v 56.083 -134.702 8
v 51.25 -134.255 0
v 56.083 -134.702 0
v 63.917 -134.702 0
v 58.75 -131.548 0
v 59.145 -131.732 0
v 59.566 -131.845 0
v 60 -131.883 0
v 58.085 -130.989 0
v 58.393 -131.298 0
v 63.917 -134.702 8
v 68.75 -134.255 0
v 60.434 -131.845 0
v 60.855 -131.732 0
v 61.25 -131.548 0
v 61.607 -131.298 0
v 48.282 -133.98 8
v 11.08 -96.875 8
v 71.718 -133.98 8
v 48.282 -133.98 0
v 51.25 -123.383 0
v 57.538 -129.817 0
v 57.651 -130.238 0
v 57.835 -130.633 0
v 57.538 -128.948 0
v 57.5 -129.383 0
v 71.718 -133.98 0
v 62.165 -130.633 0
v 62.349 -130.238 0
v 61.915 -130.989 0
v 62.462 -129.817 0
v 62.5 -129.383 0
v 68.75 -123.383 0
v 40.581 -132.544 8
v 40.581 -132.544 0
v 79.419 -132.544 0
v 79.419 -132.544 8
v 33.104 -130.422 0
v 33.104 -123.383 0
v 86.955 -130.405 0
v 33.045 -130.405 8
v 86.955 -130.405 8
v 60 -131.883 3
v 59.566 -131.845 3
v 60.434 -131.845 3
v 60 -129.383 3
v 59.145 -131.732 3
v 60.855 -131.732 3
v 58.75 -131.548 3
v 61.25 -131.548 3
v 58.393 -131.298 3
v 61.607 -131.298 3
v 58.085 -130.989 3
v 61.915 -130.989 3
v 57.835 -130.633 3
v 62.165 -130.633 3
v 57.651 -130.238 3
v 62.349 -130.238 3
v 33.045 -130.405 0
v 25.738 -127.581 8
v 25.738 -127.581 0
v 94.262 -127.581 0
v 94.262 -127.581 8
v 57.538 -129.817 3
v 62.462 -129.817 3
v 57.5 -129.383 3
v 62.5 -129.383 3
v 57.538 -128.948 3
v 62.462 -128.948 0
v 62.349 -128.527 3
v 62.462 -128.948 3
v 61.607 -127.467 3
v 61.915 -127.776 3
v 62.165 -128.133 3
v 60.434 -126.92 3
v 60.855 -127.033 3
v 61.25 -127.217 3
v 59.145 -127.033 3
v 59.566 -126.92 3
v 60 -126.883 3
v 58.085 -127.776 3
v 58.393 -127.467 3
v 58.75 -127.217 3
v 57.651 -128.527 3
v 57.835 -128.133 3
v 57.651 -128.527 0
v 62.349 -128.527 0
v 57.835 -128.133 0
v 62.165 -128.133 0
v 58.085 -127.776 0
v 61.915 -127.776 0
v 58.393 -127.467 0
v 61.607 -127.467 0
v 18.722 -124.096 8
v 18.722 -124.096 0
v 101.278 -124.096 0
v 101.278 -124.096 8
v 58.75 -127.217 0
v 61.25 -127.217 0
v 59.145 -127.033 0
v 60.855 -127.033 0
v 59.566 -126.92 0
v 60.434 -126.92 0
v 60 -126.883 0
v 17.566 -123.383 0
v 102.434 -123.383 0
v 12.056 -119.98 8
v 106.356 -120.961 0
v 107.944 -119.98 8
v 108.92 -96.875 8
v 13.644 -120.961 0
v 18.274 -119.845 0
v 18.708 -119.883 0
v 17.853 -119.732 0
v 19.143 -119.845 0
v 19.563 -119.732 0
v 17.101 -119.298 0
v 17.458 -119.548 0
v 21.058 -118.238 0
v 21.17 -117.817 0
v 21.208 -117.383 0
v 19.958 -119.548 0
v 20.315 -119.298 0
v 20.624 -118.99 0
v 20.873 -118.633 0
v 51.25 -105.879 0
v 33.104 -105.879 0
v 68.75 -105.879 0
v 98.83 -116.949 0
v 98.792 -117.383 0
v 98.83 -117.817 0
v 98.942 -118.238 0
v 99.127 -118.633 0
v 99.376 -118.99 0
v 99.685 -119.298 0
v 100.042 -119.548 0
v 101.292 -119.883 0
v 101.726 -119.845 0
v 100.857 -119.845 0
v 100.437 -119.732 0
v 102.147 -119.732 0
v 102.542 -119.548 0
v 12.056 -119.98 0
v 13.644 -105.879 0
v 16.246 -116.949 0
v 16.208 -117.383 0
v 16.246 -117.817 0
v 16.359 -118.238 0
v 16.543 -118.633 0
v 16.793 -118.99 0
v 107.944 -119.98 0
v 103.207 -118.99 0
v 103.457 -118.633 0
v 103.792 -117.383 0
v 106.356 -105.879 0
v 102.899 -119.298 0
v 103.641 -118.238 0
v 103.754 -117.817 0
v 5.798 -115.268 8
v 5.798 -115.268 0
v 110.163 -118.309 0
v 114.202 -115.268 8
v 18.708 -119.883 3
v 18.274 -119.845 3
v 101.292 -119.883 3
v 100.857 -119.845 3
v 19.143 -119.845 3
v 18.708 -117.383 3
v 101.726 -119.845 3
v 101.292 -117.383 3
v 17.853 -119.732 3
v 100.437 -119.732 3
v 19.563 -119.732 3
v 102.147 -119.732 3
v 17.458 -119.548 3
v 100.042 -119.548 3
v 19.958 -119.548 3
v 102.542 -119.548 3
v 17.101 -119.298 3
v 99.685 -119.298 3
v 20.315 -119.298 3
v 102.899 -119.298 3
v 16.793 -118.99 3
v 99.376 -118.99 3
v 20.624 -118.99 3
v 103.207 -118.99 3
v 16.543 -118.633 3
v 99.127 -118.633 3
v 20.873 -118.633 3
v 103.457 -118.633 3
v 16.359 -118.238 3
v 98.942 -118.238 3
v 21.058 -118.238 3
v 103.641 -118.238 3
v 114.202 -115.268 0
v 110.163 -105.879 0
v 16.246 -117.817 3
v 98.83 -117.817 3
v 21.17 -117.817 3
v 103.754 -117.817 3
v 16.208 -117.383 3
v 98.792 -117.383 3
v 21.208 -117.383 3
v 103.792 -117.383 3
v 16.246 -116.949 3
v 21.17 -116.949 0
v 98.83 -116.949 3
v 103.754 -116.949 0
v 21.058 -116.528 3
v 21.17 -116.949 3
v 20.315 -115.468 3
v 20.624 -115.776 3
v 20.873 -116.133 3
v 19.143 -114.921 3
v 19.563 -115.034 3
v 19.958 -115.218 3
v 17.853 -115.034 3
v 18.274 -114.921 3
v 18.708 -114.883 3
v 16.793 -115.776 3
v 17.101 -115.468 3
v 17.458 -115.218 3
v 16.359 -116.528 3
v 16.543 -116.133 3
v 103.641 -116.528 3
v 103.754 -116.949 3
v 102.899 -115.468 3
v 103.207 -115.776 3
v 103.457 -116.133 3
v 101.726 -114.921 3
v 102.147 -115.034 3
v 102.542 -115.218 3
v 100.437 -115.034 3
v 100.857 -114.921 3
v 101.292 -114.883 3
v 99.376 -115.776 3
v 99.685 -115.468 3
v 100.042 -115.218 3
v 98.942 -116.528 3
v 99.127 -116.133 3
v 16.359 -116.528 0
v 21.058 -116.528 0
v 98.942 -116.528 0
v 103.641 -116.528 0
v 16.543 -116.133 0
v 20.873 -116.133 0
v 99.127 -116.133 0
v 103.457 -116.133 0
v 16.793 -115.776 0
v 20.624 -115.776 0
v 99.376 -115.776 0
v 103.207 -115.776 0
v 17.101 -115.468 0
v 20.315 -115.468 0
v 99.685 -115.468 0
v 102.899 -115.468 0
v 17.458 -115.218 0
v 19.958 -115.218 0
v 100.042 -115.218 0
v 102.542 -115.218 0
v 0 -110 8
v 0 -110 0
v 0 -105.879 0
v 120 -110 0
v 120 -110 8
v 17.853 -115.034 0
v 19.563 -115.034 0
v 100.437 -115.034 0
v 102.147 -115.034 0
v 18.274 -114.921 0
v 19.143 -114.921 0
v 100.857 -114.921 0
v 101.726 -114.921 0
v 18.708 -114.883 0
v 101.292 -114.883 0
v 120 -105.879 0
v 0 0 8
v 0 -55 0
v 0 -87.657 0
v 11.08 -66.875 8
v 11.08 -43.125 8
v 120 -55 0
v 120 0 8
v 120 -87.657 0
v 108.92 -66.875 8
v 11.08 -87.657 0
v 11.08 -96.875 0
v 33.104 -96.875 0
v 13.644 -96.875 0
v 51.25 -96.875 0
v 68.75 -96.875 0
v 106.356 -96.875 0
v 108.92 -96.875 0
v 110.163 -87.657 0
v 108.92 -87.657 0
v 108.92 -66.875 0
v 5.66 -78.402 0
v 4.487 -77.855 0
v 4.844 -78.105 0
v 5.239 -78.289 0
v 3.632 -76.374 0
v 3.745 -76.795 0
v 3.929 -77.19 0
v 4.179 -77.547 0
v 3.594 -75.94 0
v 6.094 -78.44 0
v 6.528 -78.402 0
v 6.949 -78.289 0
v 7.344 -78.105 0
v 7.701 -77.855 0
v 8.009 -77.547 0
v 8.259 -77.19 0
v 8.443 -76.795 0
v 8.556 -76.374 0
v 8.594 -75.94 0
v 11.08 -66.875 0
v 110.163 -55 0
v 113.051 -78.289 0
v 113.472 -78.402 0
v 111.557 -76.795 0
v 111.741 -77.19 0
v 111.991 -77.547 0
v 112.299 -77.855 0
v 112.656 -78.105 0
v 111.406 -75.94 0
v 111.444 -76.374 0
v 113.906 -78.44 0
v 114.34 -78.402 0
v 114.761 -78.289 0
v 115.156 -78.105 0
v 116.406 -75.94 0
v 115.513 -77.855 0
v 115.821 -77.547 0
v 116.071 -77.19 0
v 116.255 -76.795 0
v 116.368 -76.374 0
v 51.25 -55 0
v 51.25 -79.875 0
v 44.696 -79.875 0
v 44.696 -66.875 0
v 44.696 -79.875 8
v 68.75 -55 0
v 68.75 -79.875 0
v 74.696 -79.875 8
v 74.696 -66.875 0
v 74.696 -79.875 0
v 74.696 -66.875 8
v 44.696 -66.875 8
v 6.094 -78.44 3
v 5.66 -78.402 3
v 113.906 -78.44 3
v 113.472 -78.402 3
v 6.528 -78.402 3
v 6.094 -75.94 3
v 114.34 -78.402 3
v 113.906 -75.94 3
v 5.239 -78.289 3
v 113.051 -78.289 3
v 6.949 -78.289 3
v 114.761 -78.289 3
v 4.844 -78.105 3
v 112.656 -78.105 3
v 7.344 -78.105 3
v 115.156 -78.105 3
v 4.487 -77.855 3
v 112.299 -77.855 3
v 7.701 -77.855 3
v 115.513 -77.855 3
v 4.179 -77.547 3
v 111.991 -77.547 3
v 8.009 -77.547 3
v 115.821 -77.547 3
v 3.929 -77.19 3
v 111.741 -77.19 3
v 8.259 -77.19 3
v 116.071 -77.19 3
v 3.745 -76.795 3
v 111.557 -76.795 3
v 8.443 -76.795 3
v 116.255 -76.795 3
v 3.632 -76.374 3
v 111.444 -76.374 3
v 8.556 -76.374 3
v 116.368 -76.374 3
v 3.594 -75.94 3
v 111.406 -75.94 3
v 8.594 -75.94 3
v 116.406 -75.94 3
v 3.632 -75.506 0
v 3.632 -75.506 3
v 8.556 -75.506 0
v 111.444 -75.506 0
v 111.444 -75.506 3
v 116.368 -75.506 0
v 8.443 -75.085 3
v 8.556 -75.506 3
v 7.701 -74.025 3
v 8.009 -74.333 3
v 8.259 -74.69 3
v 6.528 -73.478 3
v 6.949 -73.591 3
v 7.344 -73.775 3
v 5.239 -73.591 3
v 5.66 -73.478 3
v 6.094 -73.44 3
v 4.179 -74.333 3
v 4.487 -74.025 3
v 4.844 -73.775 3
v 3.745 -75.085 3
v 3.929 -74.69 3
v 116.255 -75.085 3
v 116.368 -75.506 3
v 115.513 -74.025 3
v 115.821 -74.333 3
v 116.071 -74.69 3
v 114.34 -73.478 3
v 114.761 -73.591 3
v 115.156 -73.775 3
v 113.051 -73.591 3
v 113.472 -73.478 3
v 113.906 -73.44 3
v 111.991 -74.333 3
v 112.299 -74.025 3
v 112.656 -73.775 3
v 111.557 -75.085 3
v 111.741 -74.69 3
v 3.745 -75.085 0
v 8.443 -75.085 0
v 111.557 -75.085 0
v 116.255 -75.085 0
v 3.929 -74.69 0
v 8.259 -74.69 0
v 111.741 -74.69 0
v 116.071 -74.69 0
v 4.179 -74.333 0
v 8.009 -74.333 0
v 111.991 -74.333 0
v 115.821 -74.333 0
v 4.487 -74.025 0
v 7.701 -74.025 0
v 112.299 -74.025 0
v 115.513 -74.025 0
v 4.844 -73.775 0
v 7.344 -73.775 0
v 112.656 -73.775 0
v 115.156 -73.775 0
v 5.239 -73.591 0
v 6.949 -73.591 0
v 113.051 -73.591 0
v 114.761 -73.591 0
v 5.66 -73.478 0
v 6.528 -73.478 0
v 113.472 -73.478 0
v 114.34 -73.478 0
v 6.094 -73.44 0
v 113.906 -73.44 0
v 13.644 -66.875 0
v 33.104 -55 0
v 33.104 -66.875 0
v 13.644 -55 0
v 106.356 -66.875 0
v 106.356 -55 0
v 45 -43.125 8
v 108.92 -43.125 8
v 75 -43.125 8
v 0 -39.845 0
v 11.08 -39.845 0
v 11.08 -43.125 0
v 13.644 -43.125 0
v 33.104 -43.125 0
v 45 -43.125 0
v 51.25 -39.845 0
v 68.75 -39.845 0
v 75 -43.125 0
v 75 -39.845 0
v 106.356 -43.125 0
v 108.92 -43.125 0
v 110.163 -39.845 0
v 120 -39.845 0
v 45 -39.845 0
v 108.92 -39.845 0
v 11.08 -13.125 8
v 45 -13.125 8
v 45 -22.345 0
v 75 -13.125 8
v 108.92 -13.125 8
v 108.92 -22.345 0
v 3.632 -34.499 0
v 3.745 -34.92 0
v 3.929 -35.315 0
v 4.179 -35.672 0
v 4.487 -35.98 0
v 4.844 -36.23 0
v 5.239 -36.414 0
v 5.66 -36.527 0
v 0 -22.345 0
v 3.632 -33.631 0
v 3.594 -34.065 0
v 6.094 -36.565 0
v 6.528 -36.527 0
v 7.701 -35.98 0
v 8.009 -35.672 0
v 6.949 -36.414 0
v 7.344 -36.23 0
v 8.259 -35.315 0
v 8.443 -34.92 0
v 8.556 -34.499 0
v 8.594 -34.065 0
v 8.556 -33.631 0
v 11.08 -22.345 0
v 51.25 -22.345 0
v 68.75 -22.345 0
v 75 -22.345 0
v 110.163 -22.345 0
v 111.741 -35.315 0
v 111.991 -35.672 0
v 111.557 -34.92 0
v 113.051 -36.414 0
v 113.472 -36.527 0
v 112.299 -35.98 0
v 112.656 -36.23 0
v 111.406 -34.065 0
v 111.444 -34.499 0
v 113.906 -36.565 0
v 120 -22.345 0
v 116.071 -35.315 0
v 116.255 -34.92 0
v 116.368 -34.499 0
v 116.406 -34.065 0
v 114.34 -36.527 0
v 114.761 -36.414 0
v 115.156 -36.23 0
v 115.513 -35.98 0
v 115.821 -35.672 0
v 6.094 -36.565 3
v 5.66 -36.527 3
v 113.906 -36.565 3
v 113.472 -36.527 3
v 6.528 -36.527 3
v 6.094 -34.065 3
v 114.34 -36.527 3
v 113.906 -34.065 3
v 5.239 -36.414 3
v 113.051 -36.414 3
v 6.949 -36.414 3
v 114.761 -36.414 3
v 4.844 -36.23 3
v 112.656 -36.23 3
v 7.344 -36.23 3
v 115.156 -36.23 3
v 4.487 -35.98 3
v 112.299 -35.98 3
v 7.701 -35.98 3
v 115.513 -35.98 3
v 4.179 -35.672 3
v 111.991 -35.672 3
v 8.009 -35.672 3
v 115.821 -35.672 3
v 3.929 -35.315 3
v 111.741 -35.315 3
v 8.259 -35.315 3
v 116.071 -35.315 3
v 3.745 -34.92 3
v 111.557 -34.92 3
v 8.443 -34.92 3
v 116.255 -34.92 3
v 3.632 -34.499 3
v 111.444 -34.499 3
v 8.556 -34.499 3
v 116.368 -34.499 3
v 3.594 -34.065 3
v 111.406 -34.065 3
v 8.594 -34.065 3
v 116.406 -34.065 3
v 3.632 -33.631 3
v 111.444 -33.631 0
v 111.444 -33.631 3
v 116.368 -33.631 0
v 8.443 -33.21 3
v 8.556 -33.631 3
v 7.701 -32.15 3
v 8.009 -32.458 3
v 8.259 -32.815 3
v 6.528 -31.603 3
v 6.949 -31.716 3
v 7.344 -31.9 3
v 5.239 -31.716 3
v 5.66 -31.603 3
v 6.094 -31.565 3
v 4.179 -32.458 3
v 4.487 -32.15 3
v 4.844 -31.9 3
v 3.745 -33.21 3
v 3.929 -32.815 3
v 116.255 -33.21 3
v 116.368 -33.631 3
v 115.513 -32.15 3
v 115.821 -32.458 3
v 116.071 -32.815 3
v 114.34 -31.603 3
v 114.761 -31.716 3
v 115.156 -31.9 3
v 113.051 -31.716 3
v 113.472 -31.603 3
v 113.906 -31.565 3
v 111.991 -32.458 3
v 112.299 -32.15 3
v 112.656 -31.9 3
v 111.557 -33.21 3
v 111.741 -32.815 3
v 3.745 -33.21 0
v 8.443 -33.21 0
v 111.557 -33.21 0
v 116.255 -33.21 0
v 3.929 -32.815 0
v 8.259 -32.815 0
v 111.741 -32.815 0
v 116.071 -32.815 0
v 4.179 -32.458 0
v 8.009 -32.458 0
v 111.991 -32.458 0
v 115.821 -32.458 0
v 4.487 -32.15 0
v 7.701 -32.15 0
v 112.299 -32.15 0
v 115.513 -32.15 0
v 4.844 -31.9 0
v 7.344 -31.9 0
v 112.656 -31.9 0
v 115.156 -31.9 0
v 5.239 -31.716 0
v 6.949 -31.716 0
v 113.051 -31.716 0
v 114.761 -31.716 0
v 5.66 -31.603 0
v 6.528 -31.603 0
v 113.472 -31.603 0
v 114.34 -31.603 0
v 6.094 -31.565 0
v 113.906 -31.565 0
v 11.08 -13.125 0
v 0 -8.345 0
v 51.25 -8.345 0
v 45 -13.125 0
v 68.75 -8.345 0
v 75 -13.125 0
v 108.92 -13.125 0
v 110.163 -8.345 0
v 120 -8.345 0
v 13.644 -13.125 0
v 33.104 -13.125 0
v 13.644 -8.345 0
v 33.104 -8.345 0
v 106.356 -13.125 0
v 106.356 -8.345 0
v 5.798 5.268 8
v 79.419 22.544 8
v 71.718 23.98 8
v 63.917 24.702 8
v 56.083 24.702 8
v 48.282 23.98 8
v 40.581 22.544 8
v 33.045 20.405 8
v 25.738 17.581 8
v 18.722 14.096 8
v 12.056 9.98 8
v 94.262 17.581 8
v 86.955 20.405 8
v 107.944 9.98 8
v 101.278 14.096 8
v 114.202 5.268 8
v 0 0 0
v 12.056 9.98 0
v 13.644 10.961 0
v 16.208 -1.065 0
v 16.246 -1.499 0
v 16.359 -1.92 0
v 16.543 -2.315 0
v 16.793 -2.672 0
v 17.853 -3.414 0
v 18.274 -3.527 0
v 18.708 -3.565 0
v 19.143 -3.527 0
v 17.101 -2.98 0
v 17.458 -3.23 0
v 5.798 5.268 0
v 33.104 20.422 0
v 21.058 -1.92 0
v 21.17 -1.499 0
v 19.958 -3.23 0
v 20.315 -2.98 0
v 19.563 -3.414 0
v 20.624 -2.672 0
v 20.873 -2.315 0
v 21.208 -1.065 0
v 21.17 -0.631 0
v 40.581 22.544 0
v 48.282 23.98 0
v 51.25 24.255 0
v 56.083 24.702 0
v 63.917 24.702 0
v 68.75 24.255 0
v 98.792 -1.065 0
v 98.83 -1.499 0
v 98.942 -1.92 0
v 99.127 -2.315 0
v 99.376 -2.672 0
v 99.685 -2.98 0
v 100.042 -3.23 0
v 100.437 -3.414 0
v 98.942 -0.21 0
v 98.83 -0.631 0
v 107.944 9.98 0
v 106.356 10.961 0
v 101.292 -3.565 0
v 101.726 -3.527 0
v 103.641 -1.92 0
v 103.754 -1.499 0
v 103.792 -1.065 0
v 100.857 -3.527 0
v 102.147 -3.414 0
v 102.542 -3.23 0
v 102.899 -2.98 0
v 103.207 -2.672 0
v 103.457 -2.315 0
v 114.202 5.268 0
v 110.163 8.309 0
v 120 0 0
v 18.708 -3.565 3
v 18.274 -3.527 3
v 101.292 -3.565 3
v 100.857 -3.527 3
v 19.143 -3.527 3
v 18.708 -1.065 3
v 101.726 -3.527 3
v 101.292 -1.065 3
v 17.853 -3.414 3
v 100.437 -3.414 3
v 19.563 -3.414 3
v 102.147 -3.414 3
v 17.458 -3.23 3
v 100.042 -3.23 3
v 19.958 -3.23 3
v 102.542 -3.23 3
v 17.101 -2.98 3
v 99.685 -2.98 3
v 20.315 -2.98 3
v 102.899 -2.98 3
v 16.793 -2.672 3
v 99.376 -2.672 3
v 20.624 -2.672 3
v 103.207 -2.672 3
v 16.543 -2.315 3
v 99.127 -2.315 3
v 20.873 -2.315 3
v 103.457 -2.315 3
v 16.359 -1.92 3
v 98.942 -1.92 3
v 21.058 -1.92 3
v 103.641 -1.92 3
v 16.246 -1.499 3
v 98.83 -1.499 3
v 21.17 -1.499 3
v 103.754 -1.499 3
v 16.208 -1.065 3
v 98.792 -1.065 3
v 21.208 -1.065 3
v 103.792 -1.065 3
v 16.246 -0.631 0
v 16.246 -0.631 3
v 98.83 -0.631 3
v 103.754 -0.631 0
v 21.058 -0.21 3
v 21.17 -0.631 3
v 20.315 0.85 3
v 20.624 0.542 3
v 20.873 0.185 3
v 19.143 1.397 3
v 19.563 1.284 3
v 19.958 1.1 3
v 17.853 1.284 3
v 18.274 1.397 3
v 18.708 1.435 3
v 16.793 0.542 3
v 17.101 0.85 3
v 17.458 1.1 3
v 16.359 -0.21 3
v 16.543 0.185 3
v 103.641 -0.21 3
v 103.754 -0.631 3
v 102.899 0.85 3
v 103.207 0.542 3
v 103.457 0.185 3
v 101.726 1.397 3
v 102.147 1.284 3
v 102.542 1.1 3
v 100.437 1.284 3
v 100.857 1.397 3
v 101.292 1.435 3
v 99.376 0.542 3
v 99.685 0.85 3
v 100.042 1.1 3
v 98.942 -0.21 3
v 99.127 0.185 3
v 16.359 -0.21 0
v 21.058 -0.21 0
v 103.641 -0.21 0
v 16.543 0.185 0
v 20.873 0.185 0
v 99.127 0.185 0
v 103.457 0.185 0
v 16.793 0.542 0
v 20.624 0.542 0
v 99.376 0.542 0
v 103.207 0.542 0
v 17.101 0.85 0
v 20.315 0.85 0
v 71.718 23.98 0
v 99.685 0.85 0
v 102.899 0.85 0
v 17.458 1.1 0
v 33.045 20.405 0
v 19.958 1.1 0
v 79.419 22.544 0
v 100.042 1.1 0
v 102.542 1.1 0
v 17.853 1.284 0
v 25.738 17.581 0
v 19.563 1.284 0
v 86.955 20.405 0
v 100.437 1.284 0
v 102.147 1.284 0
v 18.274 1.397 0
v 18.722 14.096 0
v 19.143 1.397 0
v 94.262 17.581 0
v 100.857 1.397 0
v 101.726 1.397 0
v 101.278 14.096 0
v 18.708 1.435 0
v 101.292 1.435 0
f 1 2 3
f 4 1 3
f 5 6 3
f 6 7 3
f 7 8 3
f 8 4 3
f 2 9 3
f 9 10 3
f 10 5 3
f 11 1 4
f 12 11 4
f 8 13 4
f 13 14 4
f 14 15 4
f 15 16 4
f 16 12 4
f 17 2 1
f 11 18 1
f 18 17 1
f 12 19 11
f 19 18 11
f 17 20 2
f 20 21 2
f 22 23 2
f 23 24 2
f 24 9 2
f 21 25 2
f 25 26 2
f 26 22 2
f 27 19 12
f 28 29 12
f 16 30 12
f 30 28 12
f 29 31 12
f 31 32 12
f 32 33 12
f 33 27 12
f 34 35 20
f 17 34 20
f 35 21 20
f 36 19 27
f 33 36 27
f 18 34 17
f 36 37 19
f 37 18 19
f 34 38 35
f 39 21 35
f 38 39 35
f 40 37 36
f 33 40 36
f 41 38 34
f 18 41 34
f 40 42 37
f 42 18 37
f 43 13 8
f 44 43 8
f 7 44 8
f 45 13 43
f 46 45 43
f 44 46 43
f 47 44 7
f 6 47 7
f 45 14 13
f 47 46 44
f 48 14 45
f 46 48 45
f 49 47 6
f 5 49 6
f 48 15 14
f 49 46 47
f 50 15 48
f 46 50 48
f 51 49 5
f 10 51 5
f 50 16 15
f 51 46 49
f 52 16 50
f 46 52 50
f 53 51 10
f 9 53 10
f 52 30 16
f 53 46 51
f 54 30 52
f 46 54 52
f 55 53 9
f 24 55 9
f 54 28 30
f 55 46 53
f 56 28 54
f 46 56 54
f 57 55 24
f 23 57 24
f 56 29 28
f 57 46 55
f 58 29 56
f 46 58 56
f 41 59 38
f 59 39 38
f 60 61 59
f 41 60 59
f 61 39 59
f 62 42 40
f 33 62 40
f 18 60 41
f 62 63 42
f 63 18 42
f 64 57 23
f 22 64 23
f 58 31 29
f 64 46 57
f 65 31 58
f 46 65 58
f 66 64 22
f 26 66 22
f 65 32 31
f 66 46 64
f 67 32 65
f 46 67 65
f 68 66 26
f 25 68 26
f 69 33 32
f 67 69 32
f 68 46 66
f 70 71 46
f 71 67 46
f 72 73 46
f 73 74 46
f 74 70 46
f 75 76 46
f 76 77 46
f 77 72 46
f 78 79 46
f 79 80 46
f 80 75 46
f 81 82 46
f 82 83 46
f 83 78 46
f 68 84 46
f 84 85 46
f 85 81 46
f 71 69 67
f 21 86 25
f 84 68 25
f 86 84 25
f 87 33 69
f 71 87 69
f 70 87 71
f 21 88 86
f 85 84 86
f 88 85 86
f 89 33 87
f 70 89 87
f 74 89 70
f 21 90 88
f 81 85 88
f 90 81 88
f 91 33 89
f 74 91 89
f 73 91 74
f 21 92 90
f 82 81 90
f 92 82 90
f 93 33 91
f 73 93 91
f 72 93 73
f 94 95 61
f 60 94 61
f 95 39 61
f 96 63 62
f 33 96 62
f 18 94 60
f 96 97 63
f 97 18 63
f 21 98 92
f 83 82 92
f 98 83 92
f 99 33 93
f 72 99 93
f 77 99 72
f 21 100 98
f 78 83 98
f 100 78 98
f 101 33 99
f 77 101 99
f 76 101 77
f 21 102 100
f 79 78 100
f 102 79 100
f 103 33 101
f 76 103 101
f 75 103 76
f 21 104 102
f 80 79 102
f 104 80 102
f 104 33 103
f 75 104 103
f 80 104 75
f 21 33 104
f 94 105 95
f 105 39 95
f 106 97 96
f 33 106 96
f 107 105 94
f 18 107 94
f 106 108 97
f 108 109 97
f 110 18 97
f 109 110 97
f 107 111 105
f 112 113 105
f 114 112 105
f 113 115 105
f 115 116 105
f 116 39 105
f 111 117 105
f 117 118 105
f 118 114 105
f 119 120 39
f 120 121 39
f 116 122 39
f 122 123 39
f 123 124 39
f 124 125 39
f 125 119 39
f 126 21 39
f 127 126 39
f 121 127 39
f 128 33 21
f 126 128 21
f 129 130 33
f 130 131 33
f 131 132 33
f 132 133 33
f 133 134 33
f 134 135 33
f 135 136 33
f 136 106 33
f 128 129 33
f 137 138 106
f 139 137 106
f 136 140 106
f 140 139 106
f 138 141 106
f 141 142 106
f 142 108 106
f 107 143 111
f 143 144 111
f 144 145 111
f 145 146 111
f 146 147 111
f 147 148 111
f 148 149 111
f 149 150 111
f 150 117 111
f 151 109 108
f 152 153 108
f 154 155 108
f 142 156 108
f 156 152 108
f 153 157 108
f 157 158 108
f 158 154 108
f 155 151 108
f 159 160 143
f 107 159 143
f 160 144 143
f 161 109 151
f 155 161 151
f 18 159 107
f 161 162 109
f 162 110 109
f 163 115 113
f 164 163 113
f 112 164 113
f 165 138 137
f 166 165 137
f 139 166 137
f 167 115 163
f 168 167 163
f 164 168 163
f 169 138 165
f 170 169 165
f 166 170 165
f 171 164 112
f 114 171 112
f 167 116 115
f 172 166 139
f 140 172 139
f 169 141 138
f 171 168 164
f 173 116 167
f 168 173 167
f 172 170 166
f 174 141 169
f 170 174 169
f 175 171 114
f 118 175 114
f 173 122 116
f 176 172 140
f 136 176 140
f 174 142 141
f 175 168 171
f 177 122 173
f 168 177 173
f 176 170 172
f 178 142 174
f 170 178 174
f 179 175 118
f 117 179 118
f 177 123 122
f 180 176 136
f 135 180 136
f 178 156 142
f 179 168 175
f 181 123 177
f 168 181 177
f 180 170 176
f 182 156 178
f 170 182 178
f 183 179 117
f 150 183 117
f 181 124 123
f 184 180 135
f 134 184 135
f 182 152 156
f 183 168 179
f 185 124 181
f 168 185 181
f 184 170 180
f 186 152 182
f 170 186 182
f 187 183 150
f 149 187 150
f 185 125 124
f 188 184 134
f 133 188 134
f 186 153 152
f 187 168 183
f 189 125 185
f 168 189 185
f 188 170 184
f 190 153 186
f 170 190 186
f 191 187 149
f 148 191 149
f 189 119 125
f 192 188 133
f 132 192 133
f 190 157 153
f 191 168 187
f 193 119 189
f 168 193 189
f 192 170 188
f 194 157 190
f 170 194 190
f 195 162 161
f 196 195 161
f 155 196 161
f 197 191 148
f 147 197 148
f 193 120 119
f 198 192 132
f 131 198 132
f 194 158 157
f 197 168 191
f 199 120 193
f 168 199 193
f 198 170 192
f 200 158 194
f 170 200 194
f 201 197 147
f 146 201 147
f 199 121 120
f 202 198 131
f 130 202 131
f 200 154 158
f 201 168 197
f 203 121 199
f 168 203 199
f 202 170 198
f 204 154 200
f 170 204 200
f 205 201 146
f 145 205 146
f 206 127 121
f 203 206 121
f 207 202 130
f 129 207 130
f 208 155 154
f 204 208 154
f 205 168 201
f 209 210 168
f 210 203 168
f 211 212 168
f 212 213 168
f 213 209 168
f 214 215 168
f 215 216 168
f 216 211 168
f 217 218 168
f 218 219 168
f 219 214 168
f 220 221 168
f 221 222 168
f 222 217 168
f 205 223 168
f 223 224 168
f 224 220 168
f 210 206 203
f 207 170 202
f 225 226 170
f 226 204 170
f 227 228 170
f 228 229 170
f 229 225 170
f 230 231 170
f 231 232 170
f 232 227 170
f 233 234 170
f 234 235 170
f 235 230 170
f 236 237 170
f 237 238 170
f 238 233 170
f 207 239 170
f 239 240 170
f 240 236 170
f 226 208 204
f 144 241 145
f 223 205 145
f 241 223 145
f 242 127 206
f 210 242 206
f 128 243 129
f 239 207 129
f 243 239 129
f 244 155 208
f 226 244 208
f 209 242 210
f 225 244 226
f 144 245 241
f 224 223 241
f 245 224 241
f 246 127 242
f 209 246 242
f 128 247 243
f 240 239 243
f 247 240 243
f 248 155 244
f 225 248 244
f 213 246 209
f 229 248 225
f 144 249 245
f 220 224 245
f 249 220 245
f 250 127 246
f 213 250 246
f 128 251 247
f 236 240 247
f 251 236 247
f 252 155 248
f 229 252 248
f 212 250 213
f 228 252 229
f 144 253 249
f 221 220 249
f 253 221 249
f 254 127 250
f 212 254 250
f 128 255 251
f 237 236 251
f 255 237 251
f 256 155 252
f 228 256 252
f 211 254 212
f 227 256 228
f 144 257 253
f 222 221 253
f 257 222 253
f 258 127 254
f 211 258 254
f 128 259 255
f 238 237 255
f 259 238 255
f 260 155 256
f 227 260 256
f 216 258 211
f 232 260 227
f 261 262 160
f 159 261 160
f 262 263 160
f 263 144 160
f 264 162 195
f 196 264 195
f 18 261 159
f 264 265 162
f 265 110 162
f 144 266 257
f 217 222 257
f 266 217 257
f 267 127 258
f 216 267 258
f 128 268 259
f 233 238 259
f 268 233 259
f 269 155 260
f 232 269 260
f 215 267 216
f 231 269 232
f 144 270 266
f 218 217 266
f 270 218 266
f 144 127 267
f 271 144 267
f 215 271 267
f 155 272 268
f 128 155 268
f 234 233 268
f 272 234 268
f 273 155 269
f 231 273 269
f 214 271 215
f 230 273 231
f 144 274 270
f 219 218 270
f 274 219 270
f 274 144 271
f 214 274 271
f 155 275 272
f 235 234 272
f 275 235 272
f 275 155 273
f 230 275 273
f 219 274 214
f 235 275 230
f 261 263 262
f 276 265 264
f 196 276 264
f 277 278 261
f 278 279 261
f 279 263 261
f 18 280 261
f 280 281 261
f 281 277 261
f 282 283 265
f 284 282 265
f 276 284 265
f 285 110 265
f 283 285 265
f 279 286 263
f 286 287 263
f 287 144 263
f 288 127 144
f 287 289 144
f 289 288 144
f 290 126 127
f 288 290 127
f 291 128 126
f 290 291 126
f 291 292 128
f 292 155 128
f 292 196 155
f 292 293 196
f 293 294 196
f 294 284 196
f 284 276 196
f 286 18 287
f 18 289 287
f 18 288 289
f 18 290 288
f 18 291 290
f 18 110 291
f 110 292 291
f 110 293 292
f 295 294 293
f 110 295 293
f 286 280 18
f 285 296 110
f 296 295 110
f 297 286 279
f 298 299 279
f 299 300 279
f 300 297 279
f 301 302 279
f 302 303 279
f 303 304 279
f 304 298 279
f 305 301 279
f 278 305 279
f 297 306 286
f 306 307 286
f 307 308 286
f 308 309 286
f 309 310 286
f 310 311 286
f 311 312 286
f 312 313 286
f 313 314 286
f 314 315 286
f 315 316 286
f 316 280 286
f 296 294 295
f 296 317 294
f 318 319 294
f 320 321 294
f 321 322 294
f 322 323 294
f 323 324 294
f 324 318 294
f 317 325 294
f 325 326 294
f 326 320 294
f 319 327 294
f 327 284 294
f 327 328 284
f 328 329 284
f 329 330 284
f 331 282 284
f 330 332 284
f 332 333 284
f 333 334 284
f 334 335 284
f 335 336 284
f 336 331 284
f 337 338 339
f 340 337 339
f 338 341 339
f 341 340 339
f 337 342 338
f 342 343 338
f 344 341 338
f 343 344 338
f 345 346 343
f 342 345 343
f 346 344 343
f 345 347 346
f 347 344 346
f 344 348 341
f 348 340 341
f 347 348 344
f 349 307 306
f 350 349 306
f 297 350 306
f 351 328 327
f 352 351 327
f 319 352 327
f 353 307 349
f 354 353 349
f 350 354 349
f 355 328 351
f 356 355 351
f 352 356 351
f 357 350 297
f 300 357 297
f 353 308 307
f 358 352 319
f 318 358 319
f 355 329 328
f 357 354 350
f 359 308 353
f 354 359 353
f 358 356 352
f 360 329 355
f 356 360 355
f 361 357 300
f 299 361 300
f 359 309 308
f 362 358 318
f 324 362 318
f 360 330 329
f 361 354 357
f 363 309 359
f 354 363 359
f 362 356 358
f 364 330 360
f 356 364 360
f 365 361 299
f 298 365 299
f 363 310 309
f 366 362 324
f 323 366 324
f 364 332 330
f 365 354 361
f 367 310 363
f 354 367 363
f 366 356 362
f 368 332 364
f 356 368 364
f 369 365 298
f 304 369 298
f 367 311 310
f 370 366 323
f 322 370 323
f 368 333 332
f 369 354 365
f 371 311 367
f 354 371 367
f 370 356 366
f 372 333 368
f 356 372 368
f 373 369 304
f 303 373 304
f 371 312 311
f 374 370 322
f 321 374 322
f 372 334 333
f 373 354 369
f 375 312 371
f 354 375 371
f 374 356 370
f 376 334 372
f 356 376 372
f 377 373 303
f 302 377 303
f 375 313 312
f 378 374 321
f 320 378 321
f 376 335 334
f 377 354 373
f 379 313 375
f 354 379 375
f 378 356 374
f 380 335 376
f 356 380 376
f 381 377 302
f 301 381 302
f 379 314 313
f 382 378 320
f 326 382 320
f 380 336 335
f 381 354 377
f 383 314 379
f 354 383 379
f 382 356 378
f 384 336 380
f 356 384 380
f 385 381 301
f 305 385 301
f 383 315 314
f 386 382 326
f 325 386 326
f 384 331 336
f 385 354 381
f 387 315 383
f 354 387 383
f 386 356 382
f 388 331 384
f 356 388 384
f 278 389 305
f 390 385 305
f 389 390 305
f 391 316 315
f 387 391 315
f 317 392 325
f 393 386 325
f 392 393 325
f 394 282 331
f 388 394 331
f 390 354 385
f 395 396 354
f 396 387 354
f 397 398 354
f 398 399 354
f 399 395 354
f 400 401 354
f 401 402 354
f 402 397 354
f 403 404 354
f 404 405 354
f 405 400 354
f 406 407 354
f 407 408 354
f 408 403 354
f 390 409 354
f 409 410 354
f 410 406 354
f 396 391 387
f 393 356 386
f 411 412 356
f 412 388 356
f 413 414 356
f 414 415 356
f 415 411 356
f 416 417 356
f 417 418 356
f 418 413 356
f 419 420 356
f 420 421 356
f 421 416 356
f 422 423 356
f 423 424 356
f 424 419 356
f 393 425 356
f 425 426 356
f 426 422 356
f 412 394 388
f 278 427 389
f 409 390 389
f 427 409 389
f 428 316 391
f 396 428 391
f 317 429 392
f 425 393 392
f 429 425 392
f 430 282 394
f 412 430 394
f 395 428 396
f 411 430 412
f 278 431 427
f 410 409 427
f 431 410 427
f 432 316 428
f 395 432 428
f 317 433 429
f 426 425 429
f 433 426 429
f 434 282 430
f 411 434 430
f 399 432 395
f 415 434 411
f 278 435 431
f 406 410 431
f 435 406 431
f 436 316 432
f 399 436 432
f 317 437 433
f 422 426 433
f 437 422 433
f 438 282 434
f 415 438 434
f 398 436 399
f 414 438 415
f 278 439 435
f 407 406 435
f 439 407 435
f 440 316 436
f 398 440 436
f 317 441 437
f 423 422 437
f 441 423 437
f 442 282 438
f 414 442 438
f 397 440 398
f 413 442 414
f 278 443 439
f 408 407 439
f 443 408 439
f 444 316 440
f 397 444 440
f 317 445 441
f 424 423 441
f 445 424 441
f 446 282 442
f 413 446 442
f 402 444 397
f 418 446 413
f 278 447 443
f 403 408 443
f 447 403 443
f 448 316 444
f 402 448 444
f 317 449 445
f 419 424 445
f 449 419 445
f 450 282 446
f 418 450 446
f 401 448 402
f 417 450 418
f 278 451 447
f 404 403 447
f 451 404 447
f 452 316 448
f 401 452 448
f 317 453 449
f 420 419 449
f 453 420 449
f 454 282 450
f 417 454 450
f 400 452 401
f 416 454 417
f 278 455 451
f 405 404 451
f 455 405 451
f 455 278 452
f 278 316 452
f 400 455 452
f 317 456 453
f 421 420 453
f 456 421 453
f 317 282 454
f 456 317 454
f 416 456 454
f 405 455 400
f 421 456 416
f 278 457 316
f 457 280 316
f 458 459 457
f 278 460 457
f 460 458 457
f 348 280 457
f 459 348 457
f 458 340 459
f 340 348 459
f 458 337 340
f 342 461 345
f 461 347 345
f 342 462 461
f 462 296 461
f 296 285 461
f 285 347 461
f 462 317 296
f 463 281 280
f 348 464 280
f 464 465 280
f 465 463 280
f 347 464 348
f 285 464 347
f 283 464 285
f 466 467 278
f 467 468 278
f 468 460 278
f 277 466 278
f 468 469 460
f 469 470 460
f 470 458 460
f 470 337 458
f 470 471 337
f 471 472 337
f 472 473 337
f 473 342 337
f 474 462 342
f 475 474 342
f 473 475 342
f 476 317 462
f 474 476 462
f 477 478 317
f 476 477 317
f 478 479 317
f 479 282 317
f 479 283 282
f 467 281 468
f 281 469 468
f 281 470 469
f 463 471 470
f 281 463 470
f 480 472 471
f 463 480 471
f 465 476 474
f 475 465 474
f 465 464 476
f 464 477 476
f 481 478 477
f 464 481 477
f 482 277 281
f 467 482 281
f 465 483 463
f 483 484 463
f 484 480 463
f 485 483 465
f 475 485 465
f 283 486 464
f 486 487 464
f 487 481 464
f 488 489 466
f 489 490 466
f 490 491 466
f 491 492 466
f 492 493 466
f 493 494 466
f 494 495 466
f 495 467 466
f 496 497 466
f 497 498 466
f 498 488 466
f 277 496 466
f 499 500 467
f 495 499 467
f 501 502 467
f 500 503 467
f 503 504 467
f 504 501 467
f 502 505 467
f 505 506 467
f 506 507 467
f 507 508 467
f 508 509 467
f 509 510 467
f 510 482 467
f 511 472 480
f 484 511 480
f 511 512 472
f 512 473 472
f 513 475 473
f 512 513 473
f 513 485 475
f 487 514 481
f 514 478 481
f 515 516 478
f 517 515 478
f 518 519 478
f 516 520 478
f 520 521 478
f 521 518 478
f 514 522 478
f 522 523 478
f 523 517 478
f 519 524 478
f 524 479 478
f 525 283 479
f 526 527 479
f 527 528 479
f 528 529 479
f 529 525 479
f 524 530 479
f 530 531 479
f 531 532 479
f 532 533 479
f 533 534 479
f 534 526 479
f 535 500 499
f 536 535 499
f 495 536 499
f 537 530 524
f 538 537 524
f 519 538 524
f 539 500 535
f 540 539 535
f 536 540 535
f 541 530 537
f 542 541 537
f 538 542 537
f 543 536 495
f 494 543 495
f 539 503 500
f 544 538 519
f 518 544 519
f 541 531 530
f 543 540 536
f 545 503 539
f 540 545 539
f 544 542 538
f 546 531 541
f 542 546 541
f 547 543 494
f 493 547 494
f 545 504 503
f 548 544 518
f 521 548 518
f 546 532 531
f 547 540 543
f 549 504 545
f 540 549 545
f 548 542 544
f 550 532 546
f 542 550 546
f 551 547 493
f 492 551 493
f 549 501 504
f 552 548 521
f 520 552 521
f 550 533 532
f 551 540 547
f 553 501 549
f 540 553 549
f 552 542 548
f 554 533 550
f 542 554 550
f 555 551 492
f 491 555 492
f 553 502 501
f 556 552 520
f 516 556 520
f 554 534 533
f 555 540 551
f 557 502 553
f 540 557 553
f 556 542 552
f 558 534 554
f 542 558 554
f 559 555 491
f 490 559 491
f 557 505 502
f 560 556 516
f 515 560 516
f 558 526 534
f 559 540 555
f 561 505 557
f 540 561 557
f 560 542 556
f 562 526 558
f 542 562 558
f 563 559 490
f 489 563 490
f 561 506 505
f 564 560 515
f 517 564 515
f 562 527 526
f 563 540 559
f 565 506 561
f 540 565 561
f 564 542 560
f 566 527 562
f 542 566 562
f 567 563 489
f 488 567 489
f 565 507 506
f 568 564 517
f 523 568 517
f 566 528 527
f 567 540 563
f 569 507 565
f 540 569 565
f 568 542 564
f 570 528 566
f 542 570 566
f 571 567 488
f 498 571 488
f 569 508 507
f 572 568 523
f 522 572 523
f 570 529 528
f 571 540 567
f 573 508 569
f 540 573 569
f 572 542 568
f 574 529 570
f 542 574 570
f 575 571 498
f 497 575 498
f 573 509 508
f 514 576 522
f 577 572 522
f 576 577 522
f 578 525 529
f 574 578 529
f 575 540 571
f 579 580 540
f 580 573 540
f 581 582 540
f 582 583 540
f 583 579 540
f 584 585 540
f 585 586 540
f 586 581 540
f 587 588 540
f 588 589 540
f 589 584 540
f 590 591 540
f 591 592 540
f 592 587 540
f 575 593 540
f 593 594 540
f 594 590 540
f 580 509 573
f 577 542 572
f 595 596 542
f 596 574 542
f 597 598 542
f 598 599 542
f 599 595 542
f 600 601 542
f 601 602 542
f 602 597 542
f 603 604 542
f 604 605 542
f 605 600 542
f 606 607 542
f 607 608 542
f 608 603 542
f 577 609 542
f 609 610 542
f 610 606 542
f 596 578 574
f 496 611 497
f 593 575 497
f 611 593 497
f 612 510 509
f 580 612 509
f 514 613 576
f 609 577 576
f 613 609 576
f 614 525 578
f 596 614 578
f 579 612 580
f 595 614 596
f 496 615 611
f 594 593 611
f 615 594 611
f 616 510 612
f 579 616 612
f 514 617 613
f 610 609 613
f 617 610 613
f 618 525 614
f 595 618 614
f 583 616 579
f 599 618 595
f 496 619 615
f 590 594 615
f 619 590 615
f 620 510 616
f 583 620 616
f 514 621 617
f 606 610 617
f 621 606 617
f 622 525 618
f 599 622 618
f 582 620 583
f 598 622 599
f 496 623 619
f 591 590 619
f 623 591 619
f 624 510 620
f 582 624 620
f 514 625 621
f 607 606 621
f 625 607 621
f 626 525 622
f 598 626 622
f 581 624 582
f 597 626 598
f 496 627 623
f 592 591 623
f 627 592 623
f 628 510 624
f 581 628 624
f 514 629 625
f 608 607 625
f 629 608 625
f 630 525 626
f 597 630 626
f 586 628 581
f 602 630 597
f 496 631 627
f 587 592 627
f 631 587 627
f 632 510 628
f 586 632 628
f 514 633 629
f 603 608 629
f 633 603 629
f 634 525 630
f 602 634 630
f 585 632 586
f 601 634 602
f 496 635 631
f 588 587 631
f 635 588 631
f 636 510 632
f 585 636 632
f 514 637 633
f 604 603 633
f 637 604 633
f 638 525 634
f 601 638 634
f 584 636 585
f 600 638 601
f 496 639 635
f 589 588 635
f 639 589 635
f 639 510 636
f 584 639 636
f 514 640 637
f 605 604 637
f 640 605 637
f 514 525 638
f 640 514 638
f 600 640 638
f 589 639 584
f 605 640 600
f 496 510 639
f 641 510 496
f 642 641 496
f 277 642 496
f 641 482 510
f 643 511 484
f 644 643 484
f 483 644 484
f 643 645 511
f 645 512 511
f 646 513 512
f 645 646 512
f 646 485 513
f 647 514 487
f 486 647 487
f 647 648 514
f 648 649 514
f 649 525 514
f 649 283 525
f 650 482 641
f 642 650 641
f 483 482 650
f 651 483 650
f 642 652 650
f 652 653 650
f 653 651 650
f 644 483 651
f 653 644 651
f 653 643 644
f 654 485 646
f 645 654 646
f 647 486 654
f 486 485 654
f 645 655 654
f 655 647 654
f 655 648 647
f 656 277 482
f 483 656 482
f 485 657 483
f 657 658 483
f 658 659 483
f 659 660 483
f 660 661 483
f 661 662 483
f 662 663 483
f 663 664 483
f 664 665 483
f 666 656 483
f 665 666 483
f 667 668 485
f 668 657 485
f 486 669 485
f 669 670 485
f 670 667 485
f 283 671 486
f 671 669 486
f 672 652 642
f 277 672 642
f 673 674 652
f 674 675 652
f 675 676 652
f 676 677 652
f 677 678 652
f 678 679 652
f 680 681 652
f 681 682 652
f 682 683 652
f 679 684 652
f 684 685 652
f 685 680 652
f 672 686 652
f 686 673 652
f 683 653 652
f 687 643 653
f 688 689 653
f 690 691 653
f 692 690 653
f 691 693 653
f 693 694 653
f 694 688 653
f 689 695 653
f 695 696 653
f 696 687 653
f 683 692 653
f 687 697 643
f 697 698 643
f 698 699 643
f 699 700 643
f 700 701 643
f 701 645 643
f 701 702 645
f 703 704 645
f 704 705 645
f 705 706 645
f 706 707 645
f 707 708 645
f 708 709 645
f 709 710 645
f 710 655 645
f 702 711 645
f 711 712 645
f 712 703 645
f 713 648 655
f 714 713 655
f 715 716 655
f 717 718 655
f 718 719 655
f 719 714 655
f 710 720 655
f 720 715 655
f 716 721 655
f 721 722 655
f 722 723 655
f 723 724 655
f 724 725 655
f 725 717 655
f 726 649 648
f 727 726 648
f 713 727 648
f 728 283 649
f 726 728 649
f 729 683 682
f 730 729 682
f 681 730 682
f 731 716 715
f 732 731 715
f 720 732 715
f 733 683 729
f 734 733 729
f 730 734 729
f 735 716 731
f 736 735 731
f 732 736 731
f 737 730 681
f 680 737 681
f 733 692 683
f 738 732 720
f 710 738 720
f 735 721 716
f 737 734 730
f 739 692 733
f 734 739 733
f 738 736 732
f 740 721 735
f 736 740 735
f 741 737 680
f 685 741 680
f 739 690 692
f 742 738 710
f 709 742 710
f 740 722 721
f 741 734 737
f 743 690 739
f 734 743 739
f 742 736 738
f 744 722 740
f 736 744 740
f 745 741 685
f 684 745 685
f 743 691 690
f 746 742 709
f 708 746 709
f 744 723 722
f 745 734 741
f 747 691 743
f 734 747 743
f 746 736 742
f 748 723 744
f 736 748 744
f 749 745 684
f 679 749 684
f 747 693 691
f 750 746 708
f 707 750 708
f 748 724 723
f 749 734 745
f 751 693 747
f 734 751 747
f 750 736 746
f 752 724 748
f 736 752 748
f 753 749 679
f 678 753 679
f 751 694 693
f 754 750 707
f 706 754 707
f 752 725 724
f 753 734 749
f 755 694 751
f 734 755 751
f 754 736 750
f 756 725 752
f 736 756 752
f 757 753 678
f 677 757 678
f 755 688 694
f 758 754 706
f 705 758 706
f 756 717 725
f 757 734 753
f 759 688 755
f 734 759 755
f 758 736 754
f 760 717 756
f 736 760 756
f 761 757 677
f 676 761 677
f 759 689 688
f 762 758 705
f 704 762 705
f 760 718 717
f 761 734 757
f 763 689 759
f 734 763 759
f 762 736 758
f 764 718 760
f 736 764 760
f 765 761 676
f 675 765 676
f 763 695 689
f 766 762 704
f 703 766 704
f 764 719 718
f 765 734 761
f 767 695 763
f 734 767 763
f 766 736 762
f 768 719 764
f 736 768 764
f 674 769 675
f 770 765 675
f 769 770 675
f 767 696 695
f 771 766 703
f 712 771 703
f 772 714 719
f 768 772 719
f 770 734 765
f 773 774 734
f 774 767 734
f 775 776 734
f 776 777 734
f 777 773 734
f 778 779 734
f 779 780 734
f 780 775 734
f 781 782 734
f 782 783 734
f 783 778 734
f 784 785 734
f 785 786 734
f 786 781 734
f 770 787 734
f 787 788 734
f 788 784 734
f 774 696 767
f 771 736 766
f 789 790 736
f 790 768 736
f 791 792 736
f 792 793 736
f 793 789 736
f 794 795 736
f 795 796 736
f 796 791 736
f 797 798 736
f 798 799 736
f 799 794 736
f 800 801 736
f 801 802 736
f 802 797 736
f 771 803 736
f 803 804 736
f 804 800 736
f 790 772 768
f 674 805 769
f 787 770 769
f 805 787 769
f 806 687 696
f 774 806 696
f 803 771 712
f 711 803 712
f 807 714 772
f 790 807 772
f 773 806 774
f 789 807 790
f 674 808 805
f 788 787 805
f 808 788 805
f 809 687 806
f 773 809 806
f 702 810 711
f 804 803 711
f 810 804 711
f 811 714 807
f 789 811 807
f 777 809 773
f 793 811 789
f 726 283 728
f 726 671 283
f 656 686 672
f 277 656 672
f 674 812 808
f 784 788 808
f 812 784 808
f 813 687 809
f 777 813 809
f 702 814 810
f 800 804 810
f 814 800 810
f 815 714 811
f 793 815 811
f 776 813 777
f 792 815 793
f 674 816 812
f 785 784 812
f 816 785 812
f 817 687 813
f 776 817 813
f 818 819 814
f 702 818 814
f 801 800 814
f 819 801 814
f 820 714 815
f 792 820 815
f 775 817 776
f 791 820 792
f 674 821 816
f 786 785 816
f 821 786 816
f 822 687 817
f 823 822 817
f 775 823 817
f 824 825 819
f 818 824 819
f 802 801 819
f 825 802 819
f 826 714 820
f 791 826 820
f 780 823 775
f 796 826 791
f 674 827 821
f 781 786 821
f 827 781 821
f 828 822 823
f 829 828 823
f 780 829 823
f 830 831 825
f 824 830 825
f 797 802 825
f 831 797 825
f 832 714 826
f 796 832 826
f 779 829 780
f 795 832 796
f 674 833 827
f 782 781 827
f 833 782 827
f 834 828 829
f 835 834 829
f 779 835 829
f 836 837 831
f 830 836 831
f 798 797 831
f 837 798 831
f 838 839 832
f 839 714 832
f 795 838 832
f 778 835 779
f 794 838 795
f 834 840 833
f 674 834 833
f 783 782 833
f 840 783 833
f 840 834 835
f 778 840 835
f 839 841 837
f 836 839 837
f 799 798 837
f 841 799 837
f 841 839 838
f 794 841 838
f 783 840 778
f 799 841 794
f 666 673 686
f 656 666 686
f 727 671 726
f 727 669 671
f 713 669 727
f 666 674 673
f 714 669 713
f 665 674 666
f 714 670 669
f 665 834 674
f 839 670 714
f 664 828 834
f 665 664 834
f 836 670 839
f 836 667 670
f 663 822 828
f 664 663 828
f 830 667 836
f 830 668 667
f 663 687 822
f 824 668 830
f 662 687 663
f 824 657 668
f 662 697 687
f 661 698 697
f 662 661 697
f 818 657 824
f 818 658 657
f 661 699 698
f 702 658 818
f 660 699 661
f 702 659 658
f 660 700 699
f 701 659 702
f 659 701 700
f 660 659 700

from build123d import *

# Parameters (mm, degrees)
RESSALTO_EXTRUS_O1_DEPTH = 8
CORTE_EXTRUS_O1_DEPTH    = 10
RESSALTO_EXTRUS_O2_REACH = 161.117
ESBO_O3_W                = 30
ESBO_O3_H                = 8
ESBO_O4_R                = 2.5
CORTE_EXTRUS_O2_DEPTH    = 3


with BuildPart() as part:
    # Esboço1 → Ressalto-extrusão1 (new body)
    with BuildSketch(Plane.XY):
        with BuildLine():
            Line((0, 0), (0, -110))
            ThreePointArc((0, -110), (60, -134.792027106), (120, -110))
            Line((120, -110), (120, 0))
            ThreePointArc((120, 0), (60, 24.792027106), (0, 0))
        make_face()
    extrude(amount=RESSALTO_EXTRUS_O1_DEPTH)

    # Esboço2 → Corte-extrusão1 (cut)
    with BuildSketch(Plane(origin=(0, 0, 0), x_dir=(-1, 0, 0), z_dir=(0, 0, -1))):
        Polygon((-108.919644627, -96.875), (-11.080355373, -96.875), (-11.080355373, -66.875), (-44.695581191, -66.875), (-44.695581191, -79.875), (-74.695581191, -79.875), (-74.695581191, -66.875), (-108.919644627, -66.875), align=None)
        Polygon((-108.919644627, -43.125), (-75, -43.125), (-75, -30.608967116), (-45, -30.608967116), (-45, -43.125), (-11.080355373, -43.125), (-11.080355373, -13.125), (-108.919644627, -13.125), align=None)
    extrude(amount=-CORTE_EXTRUS_O1_DEPTH, mode=Mode.SUBTRACT)

    # Esboço3 → Ressalto-extrusão2 (add, up to next)
    with BuildSketch(Plane(origin=(0, -30.608967116, 0), x_dir=(1, 0, 0), z_dir=(0, 1, 0)), mode=Mode.PRIVATE) as ressalto_extrus_o2_sk1:
        with Locations((60, -4)):
            Rectangle(ESBO_O3_W, ESBO_O3_H)
    ressalto_extrus_o2_tool1 = extrude(ressalto_extrus_o2_sk1.sketch, amount=RESSALTO_EXTRUS_O2_REACH, mode=Mode.PRIVATE) - part.part
    add(ressalto_extrus_o2_tool1.solids().sort_by_distance((60, -30.608967, 4))[0])

    # Esboço4 → Corte-extrusão2 (cut)
    with BuildSketch(Plane(origin=(0, 0, 0), x_dir=(-1, 0, 0), z_dir=(0, 0, -1))):
        with Locations((-18.70841508, -1.064839346)):
            Circle(ESBO_O4_R)
        with Locations((-6.09375, -34.065)):
            Circle(ESBO_O4_R)
        with Locations((-6.09375, -75.94)):
            Circle(ESBO_O4_R)
        with Locations((-18.70841508, -117.382967977)):
            Circle(ESBO_O4_R)
        with Locations((-60, -129.382503442)):
            Circle(ESBO_O4_R)
        with Locations((-101.29158492, -117.382967977)):
            Circle(ESBO_O4_R)
        with Locations((-113.90625, -75.94)):
            Circle(ESBO_O4_R)
        with Locations((-113.90625, -34.065)):
            Circle(ESBO_O4_R)
        with Locations((-101.29158492, -1.064839346)):
            Circle(ESBO_O4_R)
    extrude(amount=-CORTE_EXTRUS_O2_DEPTH, mode=Mode.SUBTRACT)


solid = part.part
